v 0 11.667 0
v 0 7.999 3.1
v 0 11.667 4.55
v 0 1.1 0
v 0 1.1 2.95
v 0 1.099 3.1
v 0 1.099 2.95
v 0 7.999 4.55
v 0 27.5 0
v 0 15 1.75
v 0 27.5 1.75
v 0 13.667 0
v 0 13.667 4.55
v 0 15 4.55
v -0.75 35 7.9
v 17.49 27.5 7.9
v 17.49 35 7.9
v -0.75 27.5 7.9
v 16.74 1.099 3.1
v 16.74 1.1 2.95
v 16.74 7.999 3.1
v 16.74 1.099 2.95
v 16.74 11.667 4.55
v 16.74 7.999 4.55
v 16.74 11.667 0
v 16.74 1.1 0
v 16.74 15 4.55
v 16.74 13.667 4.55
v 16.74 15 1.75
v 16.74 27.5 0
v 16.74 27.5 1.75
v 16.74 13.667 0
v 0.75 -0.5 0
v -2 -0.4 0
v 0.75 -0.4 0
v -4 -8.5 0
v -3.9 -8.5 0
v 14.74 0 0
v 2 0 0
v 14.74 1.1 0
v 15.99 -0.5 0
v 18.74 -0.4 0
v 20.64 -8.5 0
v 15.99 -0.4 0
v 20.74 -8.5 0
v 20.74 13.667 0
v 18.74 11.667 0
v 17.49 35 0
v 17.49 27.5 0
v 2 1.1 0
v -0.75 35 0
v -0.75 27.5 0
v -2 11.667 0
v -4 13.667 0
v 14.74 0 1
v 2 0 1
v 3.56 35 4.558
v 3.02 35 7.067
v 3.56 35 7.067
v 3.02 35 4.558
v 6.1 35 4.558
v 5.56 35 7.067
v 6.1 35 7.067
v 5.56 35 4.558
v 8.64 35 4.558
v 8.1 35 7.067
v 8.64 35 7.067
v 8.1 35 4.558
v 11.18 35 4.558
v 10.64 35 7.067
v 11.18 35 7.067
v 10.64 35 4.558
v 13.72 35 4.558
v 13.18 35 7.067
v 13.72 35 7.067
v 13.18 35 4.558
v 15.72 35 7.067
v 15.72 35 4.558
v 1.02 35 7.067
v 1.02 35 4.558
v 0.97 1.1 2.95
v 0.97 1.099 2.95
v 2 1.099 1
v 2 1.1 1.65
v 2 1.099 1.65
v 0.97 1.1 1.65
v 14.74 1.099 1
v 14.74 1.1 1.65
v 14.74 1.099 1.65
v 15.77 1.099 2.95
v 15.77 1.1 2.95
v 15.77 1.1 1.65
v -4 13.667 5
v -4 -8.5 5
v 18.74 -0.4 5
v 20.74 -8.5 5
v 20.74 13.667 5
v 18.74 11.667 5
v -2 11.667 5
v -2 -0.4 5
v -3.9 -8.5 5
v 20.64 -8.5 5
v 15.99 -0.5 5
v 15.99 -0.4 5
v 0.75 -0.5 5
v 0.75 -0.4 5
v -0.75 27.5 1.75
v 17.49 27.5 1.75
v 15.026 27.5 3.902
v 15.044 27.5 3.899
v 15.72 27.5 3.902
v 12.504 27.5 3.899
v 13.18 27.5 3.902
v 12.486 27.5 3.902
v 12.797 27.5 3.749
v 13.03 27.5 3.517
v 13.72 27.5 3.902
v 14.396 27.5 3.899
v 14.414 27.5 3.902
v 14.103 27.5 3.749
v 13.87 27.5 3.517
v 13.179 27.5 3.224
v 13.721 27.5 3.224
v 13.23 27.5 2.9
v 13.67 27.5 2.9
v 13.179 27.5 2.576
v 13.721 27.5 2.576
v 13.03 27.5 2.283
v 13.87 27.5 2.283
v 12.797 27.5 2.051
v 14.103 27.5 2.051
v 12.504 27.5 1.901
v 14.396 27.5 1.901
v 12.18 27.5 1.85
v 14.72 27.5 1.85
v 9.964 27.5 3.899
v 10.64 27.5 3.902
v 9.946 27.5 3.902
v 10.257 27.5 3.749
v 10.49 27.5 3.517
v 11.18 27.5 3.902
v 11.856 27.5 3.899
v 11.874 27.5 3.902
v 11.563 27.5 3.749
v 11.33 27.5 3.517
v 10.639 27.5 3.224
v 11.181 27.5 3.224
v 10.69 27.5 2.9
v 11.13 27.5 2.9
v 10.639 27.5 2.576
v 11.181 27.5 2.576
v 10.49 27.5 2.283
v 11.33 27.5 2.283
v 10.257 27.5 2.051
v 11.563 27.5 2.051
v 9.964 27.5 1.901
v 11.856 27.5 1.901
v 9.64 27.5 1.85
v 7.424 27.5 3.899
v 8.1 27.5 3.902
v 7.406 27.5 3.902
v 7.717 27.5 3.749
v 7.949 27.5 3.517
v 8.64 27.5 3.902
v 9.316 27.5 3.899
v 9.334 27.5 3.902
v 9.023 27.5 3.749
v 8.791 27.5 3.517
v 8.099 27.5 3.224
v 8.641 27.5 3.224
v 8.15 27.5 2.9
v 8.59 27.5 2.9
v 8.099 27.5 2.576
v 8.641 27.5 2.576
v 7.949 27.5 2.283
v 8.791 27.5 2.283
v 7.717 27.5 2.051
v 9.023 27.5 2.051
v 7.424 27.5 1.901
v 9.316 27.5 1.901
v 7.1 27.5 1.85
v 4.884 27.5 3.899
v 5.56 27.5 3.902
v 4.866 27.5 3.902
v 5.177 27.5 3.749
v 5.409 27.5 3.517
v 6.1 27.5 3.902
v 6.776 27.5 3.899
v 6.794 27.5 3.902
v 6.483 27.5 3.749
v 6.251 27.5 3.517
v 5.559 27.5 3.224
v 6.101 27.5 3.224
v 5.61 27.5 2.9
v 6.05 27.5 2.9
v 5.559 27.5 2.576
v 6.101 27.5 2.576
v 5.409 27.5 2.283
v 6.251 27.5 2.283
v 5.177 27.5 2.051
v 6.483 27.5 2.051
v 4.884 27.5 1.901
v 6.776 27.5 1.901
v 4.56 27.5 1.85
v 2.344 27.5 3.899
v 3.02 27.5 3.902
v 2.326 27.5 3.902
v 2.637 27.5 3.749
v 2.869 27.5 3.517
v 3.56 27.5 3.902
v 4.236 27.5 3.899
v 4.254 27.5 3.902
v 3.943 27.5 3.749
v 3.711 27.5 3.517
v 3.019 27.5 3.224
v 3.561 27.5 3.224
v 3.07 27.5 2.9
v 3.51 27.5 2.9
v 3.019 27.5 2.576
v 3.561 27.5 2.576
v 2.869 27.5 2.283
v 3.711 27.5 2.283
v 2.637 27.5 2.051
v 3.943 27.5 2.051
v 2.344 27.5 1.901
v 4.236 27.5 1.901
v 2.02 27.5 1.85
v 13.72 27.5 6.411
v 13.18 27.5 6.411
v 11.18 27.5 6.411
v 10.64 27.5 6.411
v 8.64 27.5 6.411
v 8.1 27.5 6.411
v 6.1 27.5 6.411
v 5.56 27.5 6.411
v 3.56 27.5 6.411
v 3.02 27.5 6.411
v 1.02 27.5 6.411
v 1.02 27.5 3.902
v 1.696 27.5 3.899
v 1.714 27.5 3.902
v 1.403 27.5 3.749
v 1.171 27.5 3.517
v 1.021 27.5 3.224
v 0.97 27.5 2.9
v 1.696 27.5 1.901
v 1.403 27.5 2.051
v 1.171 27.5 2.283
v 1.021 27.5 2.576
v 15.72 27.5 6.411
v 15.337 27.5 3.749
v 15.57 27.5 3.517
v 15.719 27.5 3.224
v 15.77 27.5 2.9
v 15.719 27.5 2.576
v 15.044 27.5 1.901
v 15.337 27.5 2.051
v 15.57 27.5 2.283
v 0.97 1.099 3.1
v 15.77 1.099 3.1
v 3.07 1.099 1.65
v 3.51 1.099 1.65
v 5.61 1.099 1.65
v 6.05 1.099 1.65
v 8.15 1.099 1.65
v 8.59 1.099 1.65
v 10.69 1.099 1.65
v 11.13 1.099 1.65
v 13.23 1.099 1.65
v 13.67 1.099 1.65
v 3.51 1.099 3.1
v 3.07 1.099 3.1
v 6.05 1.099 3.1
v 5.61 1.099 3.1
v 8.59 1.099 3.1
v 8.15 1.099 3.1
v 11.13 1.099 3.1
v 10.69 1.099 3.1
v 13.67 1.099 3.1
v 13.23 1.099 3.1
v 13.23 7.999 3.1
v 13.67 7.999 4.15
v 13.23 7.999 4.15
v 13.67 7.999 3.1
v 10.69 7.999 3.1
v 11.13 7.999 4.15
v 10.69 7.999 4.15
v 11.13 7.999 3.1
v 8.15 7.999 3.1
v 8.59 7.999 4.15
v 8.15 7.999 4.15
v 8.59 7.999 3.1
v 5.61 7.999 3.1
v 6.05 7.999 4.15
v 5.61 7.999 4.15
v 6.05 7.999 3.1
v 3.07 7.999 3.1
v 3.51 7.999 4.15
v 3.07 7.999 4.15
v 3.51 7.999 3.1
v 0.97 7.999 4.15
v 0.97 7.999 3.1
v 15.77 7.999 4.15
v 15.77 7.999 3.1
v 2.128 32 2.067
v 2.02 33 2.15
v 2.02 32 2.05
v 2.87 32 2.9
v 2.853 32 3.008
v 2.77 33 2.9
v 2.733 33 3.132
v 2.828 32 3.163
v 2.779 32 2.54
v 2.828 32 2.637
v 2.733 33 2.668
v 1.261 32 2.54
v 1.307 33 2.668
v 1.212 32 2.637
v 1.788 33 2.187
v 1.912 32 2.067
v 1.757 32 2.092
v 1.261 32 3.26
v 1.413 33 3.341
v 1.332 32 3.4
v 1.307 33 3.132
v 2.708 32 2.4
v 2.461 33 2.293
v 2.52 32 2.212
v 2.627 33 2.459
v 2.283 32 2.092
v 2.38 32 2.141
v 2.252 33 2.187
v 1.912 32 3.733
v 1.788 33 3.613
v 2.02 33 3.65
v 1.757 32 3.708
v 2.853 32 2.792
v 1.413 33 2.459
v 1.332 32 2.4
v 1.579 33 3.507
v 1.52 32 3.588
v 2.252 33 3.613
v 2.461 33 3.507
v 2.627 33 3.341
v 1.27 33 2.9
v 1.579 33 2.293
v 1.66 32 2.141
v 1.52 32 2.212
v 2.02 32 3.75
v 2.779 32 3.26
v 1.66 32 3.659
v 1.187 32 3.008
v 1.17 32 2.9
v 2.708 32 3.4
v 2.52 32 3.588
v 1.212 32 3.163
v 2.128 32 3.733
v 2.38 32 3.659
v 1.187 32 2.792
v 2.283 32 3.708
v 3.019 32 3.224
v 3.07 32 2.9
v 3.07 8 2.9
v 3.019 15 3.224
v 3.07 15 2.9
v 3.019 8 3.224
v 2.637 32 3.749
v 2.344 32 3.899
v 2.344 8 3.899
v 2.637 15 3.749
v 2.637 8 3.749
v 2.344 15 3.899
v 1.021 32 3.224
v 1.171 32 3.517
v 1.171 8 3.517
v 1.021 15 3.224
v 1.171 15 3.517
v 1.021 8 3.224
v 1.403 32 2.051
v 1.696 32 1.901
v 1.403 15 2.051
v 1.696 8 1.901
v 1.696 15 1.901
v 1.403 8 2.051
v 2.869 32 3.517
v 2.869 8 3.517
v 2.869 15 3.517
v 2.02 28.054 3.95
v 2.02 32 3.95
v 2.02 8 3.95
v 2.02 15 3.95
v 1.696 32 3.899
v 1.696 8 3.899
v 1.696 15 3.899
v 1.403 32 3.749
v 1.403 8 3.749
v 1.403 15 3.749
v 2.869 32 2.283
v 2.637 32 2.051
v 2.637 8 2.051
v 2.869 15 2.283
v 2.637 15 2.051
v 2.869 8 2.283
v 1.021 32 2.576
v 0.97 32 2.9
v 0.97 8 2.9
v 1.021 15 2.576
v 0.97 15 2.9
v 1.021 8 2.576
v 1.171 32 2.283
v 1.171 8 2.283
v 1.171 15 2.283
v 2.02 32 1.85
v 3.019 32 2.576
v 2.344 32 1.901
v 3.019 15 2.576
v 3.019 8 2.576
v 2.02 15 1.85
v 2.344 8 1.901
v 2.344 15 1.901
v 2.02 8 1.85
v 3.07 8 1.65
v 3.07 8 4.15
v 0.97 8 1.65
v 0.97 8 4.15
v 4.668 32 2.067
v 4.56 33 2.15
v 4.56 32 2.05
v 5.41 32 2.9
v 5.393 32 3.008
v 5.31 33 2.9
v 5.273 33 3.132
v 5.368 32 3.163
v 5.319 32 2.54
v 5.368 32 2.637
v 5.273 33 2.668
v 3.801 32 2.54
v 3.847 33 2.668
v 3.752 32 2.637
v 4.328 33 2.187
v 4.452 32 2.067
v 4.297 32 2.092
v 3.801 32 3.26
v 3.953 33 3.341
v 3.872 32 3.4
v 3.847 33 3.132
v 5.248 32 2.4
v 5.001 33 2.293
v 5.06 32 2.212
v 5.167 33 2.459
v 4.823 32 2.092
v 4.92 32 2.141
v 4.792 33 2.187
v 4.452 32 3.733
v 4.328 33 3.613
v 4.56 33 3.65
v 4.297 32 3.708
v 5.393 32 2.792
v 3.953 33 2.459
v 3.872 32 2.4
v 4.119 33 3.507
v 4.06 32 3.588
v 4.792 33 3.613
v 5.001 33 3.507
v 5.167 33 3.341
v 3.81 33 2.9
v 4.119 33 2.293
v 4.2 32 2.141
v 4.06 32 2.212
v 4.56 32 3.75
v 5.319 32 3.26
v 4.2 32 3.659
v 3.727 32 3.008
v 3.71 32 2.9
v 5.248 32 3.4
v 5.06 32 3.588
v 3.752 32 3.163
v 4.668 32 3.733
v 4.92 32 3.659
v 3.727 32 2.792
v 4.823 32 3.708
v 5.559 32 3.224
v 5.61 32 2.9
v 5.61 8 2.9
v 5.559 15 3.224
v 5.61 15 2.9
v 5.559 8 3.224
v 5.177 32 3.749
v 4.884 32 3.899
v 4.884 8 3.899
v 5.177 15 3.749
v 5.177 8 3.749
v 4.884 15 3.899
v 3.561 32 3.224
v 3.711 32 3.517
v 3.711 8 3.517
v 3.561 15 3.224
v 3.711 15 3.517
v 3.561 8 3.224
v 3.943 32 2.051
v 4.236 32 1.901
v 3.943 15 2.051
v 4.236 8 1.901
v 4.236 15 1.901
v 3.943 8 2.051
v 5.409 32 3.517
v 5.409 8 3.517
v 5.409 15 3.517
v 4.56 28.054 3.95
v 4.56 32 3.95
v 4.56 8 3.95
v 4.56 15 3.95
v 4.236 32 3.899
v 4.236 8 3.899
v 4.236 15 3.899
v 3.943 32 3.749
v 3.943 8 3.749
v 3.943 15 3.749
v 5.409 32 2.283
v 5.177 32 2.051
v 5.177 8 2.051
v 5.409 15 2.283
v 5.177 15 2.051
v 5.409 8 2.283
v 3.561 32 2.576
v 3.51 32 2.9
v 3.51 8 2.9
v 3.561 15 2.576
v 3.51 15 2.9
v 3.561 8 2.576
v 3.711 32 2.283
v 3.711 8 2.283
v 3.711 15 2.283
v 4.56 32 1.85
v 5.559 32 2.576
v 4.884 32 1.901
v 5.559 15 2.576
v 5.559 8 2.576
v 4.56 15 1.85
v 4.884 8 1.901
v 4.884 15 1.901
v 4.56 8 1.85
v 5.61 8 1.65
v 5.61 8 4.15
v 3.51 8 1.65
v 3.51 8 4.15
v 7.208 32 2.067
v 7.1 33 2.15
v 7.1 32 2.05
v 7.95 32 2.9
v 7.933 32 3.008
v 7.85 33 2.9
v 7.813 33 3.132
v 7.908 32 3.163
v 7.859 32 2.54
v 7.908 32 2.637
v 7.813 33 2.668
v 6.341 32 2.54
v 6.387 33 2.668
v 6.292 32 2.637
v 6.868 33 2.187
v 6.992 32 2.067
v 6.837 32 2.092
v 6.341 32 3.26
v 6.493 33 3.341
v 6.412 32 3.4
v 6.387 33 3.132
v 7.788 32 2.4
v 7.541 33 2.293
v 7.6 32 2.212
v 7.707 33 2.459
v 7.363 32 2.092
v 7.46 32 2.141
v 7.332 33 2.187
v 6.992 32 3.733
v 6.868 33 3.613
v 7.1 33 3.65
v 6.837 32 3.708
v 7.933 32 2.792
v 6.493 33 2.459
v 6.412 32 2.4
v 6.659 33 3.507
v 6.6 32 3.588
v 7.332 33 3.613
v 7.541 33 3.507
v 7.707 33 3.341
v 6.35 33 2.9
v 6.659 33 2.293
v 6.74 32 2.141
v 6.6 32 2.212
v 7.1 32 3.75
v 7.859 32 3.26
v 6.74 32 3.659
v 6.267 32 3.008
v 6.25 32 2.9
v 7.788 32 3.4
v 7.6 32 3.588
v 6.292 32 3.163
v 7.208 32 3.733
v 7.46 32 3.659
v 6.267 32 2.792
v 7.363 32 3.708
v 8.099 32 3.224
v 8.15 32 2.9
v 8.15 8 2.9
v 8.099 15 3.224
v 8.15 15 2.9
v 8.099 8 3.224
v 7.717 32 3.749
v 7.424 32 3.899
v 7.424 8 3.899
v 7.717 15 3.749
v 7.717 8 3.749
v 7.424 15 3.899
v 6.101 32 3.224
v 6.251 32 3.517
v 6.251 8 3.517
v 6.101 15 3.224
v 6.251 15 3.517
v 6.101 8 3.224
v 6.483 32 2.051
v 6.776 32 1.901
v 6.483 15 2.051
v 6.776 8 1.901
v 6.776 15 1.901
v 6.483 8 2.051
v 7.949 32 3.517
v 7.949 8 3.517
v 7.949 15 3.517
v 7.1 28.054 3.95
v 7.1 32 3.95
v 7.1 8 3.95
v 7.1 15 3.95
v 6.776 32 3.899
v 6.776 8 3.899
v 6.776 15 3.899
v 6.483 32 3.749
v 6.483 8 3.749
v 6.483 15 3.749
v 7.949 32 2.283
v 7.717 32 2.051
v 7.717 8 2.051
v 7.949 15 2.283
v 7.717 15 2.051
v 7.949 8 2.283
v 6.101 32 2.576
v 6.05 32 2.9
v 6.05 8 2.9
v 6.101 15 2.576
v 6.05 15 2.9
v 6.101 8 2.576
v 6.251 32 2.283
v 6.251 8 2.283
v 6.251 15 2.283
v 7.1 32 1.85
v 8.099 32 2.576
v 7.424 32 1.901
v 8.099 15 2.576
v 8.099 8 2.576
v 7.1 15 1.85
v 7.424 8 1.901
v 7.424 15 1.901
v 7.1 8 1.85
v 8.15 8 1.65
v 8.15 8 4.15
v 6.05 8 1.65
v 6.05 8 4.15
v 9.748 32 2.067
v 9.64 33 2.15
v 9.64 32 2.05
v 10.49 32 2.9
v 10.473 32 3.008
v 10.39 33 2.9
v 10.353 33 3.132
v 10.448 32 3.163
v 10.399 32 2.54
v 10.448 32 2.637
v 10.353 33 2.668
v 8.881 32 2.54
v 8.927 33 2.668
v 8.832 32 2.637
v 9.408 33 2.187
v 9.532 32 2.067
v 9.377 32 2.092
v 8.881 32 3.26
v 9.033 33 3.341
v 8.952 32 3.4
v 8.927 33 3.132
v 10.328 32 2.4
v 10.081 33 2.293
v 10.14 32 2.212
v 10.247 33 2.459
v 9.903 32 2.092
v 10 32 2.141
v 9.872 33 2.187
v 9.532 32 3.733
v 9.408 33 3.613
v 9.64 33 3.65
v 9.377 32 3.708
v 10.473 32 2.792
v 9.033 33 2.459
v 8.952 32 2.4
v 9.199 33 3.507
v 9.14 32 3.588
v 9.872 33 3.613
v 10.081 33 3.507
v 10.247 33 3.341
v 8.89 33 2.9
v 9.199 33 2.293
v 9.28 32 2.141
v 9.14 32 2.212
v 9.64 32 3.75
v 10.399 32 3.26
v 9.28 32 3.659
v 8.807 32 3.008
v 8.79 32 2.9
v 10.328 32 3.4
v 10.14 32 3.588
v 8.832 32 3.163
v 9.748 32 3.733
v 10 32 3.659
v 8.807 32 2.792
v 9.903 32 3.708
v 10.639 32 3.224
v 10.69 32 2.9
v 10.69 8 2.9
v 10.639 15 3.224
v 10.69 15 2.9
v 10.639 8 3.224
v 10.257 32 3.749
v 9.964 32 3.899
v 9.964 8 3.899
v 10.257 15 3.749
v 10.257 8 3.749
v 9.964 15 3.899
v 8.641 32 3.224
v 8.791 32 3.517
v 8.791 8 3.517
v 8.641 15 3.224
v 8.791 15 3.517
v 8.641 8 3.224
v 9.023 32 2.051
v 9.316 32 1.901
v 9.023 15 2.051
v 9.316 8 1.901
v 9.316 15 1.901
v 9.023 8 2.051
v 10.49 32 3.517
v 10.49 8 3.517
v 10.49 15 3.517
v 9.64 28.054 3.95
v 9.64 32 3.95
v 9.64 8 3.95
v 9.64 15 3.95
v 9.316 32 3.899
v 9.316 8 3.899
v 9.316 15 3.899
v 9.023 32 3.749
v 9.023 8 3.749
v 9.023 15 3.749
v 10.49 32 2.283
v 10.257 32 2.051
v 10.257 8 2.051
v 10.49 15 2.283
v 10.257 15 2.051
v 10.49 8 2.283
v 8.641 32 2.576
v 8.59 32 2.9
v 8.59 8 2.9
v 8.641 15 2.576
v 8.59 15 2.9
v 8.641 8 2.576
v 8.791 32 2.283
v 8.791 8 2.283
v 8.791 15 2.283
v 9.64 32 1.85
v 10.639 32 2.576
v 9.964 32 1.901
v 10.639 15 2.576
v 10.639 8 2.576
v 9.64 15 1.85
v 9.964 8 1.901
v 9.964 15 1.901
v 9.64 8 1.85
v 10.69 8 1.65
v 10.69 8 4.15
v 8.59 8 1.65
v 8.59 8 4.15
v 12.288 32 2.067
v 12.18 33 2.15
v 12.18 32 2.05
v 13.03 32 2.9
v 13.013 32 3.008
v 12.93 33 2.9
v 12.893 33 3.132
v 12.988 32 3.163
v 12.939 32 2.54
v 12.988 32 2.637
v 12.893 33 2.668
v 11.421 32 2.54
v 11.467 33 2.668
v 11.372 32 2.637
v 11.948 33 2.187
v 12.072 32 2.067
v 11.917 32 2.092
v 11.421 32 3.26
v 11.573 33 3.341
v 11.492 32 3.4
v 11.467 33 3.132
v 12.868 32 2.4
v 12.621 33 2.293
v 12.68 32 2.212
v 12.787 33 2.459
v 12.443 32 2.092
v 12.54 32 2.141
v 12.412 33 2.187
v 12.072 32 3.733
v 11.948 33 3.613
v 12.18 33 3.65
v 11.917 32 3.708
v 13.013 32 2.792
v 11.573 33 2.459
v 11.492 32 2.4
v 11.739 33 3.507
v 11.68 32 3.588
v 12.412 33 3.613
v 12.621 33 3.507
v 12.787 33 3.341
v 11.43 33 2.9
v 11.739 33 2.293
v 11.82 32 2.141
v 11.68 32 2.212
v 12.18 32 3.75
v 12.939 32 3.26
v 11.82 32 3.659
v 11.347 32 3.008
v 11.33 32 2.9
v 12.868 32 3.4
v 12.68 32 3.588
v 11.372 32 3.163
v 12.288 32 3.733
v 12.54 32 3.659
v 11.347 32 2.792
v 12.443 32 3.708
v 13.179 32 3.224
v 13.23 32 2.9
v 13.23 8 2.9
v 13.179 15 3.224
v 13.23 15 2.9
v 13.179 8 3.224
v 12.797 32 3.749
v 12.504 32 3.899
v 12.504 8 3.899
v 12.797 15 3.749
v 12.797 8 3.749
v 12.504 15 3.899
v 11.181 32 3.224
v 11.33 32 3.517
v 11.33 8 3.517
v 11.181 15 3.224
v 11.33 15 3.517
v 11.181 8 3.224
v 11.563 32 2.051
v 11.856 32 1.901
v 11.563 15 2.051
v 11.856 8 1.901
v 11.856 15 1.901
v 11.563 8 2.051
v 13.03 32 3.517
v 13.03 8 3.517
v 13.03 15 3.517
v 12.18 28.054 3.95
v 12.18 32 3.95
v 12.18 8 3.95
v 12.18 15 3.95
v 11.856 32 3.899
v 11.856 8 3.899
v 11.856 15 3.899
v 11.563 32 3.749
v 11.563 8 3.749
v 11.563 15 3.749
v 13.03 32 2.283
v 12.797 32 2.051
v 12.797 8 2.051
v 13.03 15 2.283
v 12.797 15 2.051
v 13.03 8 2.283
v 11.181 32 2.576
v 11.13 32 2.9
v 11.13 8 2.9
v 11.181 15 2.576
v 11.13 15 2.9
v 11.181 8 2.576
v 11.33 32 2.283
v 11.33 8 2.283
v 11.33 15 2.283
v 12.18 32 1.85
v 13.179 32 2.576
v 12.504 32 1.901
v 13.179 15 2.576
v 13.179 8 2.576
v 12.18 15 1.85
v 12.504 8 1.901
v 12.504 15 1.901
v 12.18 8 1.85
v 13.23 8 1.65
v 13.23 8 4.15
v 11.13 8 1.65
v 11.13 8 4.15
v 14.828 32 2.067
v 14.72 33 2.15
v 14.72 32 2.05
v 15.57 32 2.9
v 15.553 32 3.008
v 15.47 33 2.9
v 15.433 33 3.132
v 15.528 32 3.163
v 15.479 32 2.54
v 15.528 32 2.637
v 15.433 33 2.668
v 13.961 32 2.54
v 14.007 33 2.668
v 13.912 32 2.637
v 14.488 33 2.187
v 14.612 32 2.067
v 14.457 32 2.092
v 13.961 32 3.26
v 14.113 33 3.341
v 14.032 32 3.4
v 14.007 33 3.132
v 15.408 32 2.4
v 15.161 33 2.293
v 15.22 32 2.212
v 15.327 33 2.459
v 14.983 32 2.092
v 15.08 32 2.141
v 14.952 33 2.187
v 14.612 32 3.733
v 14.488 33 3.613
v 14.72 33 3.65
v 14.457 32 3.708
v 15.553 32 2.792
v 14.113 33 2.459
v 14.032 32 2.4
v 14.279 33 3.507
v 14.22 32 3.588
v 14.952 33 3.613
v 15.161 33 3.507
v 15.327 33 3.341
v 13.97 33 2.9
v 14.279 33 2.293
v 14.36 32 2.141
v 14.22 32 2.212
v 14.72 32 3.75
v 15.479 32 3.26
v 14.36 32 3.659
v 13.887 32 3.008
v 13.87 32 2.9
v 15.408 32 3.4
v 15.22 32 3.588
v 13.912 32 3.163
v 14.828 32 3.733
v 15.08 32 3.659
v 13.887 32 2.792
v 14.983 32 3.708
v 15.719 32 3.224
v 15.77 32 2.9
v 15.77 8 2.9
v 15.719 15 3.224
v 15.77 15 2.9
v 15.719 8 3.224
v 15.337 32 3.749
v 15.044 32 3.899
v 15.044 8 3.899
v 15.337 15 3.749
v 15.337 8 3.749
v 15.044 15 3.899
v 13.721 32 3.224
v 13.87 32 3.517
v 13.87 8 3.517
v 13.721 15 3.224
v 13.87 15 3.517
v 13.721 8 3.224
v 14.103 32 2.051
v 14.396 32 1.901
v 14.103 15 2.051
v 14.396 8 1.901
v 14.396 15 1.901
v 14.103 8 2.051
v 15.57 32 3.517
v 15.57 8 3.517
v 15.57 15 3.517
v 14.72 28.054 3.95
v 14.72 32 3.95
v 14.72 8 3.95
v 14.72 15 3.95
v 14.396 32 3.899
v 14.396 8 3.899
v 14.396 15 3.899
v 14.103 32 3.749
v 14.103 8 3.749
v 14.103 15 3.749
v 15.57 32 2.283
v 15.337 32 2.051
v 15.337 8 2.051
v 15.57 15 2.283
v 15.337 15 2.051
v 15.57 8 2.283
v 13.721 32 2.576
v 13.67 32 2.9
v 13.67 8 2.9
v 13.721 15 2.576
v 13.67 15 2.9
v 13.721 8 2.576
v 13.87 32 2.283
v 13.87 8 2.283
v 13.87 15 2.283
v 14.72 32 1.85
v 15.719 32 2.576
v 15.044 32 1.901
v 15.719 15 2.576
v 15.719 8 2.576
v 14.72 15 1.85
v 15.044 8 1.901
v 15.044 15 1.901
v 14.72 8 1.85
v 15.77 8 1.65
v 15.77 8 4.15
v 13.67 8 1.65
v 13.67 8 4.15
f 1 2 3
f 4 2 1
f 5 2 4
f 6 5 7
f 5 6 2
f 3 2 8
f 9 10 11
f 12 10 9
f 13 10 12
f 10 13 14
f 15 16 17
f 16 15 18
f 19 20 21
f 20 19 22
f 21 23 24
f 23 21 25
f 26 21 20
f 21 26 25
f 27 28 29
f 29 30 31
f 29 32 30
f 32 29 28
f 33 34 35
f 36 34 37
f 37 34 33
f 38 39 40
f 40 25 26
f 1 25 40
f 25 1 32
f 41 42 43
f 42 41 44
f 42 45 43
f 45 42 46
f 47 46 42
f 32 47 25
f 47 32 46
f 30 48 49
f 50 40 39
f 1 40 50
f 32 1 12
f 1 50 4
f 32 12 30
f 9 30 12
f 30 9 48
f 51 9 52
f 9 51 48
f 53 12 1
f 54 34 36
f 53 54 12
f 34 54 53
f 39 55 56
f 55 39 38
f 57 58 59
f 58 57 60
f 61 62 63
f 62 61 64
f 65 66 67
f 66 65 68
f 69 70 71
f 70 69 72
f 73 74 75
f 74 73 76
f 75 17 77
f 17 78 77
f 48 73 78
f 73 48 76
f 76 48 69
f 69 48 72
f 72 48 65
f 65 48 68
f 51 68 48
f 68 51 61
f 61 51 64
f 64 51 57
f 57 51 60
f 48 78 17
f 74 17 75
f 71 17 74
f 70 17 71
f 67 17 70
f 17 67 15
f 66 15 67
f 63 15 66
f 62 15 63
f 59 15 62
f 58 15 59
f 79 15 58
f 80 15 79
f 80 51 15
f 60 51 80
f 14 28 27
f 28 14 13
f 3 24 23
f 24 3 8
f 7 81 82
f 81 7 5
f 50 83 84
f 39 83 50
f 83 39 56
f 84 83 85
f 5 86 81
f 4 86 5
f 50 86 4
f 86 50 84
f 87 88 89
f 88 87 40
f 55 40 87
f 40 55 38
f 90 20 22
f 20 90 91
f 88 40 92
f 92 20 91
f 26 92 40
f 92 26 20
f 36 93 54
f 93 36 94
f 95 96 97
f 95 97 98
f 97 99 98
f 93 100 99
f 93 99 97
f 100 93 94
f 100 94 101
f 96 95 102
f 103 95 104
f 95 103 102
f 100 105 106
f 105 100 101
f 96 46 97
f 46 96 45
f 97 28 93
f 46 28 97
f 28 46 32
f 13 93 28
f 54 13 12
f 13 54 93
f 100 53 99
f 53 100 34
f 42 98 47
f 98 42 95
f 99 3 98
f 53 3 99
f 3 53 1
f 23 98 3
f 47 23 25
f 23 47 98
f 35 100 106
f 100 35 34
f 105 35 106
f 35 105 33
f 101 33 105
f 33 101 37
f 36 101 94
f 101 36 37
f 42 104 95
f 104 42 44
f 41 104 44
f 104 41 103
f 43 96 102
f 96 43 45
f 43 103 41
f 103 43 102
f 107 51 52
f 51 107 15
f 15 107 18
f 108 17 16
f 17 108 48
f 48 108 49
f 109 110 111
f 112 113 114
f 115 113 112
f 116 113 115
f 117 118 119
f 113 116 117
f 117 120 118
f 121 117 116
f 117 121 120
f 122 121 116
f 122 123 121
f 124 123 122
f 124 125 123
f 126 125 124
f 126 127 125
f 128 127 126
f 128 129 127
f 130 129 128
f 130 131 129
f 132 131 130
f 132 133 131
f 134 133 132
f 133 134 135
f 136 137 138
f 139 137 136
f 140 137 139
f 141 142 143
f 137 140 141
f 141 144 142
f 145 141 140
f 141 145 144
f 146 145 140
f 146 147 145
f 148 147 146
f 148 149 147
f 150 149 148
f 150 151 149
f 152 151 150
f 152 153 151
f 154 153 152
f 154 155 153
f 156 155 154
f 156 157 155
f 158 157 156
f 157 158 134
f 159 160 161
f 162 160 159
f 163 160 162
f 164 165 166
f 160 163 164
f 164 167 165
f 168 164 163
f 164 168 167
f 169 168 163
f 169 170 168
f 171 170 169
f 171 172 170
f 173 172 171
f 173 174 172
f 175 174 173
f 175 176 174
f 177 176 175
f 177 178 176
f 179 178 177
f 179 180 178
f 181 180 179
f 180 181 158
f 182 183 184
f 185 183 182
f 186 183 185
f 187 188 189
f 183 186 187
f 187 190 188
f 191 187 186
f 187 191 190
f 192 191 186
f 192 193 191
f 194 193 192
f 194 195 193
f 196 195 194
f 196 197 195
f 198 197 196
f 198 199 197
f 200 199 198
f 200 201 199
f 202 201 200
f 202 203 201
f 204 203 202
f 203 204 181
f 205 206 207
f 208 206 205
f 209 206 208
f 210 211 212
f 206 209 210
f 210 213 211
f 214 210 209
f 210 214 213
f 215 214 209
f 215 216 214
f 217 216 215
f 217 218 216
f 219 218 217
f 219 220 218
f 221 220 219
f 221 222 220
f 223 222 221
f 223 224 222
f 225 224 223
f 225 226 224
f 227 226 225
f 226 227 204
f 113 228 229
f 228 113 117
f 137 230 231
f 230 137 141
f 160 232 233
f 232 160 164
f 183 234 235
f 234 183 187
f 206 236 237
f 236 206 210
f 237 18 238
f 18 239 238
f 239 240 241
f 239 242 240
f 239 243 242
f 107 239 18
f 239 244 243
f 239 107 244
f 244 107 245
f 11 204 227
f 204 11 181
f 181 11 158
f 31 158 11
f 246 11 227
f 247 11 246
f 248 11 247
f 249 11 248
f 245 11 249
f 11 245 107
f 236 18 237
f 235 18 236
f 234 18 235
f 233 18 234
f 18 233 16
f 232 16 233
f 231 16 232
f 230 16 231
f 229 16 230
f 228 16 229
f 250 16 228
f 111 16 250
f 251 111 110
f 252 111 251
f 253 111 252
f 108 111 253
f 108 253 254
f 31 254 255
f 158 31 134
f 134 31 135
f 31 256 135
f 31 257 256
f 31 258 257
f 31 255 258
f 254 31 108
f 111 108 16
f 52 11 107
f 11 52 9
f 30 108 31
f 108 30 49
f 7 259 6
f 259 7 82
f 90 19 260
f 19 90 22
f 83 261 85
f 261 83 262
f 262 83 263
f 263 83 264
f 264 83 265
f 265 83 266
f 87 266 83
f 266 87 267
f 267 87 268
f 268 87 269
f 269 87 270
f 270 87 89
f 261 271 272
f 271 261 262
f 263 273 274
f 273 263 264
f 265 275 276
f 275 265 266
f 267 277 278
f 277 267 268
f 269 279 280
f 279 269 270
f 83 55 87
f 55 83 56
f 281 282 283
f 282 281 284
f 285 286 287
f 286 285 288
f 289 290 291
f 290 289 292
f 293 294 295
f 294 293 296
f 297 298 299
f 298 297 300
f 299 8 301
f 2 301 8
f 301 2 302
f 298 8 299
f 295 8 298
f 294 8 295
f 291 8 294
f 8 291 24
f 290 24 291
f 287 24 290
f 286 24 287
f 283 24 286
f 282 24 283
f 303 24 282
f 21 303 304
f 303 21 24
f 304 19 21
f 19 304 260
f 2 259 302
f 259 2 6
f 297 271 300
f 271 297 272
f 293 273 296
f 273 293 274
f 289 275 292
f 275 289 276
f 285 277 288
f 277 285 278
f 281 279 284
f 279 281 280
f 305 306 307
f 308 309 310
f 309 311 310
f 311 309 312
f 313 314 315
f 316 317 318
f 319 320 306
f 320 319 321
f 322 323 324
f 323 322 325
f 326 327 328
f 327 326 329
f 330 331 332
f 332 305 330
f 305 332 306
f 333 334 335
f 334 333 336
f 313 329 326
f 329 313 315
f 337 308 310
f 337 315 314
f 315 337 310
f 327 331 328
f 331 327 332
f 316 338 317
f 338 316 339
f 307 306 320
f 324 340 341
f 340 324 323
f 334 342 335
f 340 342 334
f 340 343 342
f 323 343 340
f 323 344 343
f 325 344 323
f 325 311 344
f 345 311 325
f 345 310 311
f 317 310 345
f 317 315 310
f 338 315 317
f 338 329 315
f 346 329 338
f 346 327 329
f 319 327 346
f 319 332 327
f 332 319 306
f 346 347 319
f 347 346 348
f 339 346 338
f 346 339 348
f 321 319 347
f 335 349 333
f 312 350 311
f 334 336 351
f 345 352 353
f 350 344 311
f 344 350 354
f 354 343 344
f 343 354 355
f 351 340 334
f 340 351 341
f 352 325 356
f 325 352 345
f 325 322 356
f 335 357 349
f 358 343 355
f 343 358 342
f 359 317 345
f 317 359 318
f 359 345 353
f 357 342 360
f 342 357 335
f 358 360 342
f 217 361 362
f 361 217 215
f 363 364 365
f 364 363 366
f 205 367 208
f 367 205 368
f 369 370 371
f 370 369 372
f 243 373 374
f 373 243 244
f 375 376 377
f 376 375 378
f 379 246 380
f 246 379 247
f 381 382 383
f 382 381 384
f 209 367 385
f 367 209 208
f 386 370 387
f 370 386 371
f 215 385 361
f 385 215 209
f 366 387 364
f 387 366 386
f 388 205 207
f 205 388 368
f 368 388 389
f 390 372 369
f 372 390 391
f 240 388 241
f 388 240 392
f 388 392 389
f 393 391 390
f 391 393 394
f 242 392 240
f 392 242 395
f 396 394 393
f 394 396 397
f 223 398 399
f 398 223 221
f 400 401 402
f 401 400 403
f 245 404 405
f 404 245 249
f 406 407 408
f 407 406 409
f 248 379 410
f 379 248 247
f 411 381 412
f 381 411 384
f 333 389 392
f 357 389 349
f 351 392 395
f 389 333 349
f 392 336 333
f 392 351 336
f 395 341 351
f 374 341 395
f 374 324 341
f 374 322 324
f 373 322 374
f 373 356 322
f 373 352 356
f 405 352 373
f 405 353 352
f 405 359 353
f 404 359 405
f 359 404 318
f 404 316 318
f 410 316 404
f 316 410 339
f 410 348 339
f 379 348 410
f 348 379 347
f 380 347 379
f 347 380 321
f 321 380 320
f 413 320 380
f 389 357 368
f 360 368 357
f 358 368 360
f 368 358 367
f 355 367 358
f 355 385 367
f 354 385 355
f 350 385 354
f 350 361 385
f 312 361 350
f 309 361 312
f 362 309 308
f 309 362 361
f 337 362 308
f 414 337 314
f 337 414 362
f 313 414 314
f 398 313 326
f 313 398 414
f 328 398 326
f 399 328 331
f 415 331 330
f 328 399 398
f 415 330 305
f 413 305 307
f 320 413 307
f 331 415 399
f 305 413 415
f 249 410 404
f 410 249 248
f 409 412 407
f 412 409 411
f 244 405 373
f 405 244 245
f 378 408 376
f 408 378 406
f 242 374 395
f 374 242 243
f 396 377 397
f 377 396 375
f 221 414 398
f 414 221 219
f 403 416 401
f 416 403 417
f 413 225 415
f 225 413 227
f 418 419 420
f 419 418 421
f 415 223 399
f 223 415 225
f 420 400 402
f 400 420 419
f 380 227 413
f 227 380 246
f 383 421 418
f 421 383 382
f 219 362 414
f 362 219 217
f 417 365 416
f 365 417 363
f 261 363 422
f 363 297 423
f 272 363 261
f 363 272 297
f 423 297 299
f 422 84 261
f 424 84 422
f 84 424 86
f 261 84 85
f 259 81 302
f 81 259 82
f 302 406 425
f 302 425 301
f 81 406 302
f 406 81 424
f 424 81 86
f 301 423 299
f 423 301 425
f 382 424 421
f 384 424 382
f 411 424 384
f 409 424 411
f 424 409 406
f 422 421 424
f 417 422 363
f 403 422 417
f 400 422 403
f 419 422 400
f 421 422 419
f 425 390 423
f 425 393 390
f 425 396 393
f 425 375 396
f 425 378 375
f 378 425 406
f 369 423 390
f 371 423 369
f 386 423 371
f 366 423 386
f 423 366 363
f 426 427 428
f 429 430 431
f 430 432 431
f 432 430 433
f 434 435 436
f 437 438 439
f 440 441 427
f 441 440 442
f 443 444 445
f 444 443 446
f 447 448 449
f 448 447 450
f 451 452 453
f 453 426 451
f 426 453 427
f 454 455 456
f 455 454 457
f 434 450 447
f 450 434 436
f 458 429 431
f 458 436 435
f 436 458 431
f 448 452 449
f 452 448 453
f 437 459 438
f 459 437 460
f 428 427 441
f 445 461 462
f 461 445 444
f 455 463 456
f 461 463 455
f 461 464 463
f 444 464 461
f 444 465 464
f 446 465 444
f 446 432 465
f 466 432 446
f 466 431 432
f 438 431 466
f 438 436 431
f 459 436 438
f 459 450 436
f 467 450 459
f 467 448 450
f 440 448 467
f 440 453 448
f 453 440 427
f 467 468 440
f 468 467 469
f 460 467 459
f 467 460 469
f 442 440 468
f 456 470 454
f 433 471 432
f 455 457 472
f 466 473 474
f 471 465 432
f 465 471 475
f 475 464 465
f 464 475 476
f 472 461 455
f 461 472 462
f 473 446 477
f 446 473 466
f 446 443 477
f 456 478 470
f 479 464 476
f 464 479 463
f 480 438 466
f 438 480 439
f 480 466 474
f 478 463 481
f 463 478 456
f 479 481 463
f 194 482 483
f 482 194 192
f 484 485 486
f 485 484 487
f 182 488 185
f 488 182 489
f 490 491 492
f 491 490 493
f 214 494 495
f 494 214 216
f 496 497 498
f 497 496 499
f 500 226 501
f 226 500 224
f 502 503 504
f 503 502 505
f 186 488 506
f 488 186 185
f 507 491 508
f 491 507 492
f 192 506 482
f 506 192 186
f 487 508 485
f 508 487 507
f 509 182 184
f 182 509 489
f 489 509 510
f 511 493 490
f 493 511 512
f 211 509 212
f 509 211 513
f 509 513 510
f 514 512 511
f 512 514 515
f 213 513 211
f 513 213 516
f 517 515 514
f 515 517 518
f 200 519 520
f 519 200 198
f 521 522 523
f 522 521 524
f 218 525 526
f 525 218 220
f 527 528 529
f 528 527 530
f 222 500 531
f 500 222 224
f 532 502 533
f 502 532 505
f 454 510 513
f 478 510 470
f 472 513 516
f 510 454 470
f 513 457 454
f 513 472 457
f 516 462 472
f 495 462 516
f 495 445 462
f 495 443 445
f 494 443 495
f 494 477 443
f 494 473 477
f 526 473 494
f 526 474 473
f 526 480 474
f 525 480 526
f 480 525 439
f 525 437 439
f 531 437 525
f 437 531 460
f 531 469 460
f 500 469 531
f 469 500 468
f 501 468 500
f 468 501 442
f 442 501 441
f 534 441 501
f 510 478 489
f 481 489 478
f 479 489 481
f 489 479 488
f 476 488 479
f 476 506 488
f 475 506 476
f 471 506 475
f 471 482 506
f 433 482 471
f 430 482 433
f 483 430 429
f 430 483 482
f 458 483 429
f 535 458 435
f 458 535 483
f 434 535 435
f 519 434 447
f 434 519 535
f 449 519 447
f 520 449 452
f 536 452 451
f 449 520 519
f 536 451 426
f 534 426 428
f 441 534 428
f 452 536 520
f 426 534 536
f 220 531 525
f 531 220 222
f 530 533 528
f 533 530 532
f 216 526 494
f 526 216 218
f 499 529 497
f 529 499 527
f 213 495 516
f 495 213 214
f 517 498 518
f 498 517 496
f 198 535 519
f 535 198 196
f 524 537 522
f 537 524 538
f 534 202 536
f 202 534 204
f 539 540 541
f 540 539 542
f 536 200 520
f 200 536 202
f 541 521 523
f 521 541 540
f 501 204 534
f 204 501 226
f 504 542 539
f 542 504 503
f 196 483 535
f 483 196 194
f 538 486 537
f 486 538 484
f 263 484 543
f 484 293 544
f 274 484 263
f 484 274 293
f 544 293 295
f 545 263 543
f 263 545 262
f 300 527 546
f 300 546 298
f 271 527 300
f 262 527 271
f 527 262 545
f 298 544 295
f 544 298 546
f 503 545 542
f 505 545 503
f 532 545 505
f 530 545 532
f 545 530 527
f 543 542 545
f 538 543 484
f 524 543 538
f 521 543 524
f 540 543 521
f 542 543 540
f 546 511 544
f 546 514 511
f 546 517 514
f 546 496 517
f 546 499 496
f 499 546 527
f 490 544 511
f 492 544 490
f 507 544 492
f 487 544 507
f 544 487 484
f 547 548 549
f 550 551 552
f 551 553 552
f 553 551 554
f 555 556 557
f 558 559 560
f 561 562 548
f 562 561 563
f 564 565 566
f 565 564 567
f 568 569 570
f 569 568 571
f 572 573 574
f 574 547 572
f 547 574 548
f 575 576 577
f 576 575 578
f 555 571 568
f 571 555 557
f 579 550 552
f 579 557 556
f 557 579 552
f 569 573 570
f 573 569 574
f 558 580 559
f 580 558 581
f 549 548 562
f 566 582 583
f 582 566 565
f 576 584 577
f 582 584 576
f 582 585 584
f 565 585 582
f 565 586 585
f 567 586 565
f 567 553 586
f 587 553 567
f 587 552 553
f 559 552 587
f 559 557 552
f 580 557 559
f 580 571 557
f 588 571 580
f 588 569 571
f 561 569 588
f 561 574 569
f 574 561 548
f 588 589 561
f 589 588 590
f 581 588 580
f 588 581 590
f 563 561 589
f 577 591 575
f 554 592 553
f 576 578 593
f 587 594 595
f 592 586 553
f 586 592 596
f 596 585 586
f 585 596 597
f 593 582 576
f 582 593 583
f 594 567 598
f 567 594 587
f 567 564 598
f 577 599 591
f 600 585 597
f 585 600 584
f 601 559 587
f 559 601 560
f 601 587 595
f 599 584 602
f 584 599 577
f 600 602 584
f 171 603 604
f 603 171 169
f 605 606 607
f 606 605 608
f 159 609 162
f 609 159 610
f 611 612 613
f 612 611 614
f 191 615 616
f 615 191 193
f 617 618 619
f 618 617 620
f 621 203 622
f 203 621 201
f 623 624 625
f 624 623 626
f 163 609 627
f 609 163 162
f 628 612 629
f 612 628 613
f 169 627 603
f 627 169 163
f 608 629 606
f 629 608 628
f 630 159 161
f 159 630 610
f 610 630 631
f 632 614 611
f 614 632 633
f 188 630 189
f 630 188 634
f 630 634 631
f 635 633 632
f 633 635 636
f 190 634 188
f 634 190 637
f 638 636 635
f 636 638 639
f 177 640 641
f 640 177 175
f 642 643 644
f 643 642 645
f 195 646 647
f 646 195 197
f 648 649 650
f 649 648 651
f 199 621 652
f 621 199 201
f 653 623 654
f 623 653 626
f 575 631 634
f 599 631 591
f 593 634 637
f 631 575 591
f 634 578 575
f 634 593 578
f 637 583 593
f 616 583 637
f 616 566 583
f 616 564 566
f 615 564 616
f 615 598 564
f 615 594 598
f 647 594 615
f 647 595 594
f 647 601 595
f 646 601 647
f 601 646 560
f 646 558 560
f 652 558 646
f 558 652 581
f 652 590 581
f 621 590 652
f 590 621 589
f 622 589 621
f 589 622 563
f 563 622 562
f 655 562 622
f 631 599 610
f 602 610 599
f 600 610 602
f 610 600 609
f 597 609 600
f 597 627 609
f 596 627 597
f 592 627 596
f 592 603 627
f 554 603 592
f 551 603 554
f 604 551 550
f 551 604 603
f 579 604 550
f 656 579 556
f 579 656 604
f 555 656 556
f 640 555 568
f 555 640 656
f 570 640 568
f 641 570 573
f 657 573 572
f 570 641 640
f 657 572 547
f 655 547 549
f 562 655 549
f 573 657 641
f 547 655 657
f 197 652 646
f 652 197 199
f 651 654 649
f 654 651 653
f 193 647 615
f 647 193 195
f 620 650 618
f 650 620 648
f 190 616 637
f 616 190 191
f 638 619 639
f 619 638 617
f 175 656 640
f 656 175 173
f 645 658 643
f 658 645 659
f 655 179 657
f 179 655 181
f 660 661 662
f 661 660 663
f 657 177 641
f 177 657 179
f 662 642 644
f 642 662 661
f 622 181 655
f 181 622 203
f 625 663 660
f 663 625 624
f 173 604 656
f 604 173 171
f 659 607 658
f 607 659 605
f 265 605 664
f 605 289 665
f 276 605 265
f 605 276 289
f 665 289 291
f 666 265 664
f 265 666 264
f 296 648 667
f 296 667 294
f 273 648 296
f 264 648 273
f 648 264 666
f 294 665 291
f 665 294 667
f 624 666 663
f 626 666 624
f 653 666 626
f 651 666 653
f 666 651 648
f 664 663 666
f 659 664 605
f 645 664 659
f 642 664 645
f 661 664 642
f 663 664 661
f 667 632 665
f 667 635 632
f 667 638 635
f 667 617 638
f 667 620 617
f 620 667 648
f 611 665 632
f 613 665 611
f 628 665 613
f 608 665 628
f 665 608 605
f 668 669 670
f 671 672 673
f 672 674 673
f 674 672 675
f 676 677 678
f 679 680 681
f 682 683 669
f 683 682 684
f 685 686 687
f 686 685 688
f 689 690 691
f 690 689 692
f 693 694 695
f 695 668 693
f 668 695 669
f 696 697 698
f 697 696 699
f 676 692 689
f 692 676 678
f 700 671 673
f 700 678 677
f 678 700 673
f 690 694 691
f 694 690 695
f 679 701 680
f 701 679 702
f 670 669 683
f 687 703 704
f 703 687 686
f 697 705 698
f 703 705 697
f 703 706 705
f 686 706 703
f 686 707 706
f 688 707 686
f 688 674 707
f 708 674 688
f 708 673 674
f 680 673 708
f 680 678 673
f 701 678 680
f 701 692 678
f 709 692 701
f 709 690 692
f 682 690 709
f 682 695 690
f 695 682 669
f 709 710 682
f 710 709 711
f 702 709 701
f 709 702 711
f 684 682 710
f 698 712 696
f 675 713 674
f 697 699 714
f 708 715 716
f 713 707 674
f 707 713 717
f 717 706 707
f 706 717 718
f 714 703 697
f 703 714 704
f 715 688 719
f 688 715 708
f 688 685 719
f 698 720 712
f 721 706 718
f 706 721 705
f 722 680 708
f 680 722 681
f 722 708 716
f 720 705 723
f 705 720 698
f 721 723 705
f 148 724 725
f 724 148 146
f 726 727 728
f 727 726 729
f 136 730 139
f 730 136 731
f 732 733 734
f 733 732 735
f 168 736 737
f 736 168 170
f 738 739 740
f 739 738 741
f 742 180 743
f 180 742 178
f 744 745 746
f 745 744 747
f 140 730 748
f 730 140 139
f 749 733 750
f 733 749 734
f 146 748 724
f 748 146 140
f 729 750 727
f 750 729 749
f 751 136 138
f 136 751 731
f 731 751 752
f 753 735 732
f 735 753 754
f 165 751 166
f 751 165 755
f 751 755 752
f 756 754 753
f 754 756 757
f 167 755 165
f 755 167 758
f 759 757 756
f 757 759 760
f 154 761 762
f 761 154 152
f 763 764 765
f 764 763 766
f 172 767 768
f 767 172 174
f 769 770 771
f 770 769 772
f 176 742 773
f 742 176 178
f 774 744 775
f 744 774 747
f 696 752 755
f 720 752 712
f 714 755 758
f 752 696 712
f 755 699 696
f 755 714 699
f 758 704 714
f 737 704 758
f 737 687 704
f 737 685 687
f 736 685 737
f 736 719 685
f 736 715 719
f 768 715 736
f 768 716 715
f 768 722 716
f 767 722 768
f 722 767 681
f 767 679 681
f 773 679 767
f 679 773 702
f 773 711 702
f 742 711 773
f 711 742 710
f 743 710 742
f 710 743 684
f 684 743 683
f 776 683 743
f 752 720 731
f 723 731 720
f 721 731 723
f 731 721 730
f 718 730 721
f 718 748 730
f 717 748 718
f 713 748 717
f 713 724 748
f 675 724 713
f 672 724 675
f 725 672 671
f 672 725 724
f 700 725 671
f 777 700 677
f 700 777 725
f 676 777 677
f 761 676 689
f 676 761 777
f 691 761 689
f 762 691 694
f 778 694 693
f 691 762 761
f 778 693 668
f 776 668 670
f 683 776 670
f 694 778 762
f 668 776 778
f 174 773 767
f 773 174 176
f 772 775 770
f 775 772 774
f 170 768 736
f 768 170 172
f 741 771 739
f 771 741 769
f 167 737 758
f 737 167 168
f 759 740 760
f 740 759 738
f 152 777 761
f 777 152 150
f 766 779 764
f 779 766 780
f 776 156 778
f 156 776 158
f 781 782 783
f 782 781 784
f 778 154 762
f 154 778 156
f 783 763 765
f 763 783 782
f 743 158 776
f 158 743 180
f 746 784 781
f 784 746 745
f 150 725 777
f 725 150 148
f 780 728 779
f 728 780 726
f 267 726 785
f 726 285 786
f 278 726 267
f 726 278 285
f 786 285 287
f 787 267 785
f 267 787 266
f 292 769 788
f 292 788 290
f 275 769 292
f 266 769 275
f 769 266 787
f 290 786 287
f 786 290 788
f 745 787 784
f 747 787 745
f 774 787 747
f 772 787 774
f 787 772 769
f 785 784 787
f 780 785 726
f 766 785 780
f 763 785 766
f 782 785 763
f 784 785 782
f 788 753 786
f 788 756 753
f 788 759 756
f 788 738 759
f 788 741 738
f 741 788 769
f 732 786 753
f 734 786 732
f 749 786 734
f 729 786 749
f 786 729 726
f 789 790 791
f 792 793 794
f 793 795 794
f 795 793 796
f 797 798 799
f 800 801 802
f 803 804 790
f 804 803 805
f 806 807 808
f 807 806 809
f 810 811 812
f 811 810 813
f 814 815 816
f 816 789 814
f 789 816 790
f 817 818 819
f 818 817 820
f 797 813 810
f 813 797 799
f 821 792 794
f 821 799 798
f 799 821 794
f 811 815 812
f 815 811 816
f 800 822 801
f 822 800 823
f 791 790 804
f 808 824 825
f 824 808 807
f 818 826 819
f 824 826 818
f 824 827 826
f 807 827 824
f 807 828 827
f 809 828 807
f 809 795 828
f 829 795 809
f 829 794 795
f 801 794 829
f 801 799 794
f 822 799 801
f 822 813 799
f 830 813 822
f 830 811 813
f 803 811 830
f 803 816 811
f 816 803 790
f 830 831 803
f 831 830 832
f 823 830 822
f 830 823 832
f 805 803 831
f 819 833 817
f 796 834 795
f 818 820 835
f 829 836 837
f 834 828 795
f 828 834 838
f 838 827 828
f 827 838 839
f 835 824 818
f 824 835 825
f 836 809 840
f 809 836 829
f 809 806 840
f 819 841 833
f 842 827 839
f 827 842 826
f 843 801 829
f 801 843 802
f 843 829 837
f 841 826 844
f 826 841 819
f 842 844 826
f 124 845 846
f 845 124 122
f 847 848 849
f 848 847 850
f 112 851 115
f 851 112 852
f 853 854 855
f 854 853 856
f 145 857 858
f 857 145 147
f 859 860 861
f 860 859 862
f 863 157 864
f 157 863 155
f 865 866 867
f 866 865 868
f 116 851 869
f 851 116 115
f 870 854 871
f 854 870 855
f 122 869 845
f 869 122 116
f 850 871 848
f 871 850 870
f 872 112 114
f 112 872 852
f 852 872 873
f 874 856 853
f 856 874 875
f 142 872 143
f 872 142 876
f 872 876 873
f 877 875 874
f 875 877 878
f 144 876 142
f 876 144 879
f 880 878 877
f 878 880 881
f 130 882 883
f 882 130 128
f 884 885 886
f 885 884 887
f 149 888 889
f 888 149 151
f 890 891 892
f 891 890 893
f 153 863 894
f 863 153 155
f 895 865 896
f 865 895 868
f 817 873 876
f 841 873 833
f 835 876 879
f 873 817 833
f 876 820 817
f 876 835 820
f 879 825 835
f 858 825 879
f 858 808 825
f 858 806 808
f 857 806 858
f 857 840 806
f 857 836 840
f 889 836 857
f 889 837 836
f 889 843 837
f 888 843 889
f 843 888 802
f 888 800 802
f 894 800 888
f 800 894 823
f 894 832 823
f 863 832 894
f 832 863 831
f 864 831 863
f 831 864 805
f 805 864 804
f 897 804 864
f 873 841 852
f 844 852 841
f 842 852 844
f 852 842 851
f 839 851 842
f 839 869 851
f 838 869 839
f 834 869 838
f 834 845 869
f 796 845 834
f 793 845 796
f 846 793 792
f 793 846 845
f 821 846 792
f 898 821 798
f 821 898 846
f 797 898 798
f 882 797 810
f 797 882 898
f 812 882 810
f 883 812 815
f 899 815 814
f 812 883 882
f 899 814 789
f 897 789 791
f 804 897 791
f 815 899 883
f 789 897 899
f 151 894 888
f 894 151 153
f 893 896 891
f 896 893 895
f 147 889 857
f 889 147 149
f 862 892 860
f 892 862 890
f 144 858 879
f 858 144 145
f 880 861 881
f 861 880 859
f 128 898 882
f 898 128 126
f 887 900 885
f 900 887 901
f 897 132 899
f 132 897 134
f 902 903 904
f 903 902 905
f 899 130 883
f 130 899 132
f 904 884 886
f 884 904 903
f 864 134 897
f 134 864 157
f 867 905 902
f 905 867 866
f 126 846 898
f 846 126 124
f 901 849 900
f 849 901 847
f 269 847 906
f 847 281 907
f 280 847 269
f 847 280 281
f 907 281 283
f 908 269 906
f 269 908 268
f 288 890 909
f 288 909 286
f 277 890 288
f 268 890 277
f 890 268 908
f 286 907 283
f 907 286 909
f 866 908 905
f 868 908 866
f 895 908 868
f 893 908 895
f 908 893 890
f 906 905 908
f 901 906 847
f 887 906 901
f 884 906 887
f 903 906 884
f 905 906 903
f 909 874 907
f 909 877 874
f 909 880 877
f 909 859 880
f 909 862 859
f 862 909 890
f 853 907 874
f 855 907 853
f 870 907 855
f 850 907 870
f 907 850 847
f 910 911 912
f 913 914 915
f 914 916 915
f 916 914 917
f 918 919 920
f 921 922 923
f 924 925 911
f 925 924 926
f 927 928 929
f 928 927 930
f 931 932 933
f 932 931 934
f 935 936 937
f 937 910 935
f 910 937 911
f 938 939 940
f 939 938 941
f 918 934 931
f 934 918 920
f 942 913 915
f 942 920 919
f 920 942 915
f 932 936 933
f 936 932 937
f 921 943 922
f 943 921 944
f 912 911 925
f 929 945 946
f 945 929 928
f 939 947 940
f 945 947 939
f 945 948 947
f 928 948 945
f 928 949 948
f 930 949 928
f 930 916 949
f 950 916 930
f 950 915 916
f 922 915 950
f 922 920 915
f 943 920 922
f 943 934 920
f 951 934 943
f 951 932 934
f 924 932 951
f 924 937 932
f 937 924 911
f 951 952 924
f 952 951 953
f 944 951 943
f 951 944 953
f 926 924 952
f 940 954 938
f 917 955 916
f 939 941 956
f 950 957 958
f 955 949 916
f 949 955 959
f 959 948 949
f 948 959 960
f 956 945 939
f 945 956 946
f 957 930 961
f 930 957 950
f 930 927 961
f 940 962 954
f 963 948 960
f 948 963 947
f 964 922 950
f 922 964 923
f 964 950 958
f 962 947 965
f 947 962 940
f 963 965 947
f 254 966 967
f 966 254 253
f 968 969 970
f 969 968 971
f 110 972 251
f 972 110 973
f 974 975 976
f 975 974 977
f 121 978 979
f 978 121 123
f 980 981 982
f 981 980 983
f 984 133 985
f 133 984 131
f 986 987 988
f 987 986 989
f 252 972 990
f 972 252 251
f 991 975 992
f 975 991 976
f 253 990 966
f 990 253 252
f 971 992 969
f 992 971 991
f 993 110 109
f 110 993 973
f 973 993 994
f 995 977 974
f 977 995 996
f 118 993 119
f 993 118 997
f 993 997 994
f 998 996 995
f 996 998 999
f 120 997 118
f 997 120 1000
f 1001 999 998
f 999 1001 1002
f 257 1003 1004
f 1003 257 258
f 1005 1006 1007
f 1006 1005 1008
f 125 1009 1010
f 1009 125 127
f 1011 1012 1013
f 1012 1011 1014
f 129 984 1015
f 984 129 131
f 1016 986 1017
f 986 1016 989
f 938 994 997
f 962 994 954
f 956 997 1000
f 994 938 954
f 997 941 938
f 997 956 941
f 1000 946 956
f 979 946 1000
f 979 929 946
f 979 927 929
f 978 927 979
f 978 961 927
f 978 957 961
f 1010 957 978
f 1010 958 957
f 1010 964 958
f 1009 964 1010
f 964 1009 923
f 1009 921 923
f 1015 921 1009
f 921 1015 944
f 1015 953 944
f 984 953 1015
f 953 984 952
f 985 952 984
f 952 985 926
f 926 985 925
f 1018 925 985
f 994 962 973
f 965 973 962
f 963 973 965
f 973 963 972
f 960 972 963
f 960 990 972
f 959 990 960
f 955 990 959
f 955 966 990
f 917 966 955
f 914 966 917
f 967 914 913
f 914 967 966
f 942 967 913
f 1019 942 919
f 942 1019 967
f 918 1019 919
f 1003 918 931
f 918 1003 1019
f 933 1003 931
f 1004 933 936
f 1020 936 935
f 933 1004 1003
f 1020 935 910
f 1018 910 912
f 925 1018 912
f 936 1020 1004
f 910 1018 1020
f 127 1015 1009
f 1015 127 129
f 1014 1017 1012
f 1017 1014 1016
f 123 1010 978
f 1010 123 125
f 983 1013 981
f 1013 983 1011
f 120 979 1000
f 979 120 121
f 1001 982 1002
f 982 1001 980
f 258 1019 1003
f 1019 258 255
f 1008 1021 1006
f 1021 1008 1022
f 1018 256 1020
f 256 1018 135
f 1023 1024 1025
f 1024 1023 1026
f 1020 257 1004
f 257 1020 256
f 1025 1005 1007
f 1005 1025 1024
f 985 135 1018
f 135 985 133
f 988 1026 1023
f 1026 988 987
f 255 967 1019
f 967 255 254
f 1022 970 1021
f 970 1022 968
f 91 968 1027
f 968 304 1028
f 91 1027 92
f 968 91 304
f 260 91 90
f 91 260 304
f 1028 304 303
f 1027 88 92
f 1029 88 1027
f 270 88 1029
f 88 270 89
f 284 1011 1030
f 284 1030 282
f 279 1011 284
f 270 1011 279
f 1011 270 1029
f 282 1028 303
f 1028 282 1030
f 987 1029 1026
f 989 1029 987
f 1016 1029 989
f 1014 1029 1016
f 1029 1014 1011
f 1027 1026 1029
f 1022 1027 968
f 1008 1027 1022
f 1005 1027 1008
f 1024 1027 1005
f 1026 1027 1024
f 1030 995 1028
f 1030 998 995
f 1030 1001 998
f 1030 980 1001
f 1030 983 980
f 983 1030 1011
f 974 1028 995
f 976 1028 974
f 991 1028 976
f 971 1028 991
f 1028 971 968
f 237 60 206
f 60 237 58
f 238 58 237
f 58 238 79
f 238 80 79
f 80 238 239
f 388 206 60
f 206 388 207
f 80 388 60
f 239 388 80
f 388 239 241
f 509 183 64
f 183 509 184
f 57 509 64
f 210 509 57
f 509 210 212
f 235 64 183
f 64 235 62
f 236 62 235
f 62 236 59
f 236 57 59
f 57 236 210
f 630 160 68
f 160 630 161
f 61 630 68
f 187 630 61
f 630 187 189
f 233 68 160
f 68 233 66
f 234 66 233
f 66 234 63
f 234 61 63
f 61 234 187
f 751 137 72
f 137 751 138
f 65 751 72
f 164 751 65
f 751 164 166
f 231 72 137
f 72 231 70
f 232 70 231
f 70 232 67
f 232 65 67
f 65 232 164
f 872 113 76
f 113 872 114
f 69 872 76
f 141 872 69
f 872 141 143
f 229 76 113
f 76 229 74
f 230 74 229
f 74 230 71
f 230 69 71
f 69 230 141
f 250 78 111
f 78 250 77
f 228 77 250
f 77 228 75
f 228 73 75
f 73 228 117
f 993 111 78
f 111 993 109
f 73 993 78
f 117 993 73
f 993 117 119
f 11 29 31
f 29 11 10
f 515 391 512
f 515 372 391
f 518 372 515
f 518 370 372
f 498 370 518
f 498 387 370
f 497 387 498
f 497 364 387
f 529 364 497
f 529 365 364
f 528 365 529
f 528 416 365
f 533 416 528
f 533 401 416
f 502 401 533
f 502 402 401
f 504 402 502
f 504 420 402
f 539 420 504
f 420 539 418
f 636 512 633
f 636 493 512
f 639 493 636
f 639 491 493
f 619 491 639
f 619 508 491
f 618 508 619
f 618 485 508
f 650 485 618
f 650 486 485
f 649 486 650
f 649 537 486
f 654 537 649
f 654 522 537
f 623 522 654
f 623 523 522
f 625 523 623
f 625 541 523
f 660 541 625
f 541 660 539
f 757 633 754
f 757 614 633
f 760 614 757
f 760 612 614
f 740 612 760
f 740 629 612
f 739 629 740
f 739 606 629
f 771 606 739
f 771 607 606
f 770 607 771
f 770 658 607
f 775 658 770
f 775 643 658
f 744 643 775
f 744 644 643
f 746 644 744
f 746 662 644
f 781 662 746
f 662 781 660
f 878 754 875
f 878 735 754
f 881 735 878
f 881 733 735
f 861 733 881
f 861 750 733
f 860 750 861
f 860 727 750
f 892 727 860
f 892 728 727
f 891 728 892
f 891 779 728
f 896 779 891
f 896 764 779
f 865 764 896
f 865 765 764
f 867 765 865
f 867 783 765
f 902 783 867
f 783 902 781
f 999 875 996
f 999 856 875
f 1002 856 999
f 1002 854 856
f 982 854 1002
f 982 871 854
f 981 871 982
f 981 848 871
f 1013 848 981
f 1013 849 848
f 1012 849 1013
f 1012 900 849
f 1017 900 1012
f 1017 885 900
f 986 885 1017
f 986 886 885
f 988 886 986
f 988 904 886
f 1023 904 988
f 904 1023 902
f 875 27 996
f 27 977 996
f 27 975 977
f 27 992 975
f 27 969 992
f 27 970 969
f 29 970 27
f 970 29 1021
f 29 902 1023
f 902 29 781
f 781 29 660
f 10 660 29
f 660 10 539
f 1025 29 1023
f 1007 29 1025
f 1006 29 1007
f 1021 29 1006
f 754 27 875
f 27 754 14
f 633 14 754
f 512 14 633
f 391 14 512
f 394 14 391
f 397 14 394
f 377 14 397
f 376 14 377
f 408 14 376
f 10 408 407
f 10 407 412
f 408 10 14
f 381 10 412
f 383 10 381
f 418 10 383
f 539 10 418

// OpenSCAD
$fn=20;
/*
  Edge Header Programmer Clip Via Probes (e.g. OpenLog Clone)
  Author: Brian Khuu 2019
  
  This is originally designed for connecting to OpenLog Clones
  
  I used P100-E2 probes for this
  
  Note: The purple openlog clone Programmer Port essentally has [GND, RST, SCK, M0, M1, Vin]

*/

// Designed For Printer Nozzle
printer_nozzle=0.4;

// Base Thickness
base_thickness = 1;

/* probe pin spec */
ppext = 8; // Probe extention length
ppbody = 25; // Body of the probe
ppdia = 1.5; // probe pin diameter

ppdiatol = 0.6; // tolerance for fitting
ppinset = 0;

ppdiaoutset = ppext-ppinset; // How far to space out to allow for side fits
echo(ppdiaoutset);

/* Castellated Module Pin Spacing and count */

// Pin Count
ppc = 6;

// Pin Spacing
pps = 2.54;

// PCB Thickness
pcb_thickness = 1.1; // 1mm Open Log Clone

// PCB Probe Offset
pcb_probe_offset = 1.3;

/* Clip */
clip_tab = 5; // Clip tab to more easily open the clip

/* pcb */
pcb_h = 2; // pcb thickness

/* calc */
boxx = ppc * pps + ppdia;
boxy = 2 + ppbody + ppdiaoutset;
boxh = base_thickness+pcb_probe_offset+ppdiatol+5;

module probe_pin_req()
{
  inset=0;
  translate([0,0,-ppbody])
  union()
  {
    translate([0,0,0])
      cylinder(r1=(ppdia)/2,r2=(ppdia+ppdiatol)/2, h=3);
    translate([0,0,1])
      cylinder(r=(ppdia+ppdiatol)/2, h=ppbody+ppext+1);
    %color("gold") cylinder(r=ppdia/2, h=ppbody);
    %color("silver") translate([0,0,ppbody])
      cylinder(r=ppdia/2, r2=0, h=ppext);
  }
}

module openlog_clone_programmer_jig_clip()
{
  grip_gap=2;
  grip_thickness=printer_nozzle*5;
  grip_height=5;
  difference() 
  {
    translate([-grip_gap-grip_thickness,-1,0])
      cube([boxx+grip_gap*2+grip_thickness*2,boxy/3+3,grip_height]);
    translate([-grip_gap,-2,-1])
      cube([boxx+grip_gap*2,boxy/3+2,grip_height+2]);
  }
  translate([-(grip_thickness*2+grip_gap*2)/2,-0.5,0])
    hull()
    {
      translate([0,0,0])
        cube([(grip_thickness+grip_gap+ppdia/2),0.1,grip_height]);
      translate([0,-8,0])
        cube([0.1,0.1,grip_height]);
    }
  translate([(grip_thickness*2+grip_gap*2)/2+boxx,-0.5,0])
    hull()
    {
      translate([-(grip_thickness+grip_gap+ppdia/2),0,0])
        cube([(grip_thickness+grip_gap+ppdia/2),0.1,grip_height]);
      translate([-0.1,-8,0])
        cube([0.1,0.1,grip_height]);
    }
}

module openlog_clone_programmer_jig()
{
  difference()
  {  
    /* Bulk */
    union()
    {
      difference()
      {
        cube([boxx,boxy,boxh]);
        translate([-5, 0, base_thickness+pcb_probe_offset+ppdia*1.5]) 
          cube([ppc * pps+10,ppbody, 5]);
        translate([0,0,-1])
          cube([4,pcb_thickness*2,boxh],center=true);
        translate([boxx,0,-1])
          cube([4,pcb_thickness*2,boxh],center=true);
      }
      translate([-(ppdia)/2, ppdiaoutset+7+ppbody/2, 0]) 
        cube([boxx+(ppdia),boxy-(ppdiaoutset+7+ppbody/2), boxh]);
      openlog_clone_programmer_jig_clip();
    }

    /* Probe Access Cutout */
    translate([-5, ppdiaoutset+7, base_thickness+ppdia/2]) 
      cube([ppc * pps+10,ppbody/2, 10]);
      
    /* Module Cutout */
    translate([0, -0.001, 0]) 
      union()
      {     
        translate([0, 0,base_thickness]) 
          cube([boxx,pcb_thickness, boxh]);   
        translate([0, 0, base_thickness+ppdia+ppdiatol]) 
          cube([boxx,ppdiaoutset, boxh]);
      }
      
    /* Probe */
    for ( xi = [0 : 1 : ppc-1] )
    {
      translate([ppdia/2+pps/2+pps*xi, 0, base_thickness])
      union()
      {
        translate([0, ppdiaoutset, pcb_probe_offset+ppdiatol])
          rotate([90,0,0])
          probe_pin_req();
        
        translate([0, ppdiaoutset, pcb_probe_offset+ppdiatol])
          rotate([180,0,0])
            translate([0, (ppdiaoutset)/2, 0])
              cube([ppdia+ppdiatol,(ppdiaoutset),ppdia+1], center=true);
      }
    }
    
    /* Wire Guide (To solder onto the probe) */
    for ( xii = [0 : 1 : ppc-1] )
    {
      translate([ppdia/2+pps/2+pps*xii, boxy+1, base_thickness+ppdia+1.5+pcb_probe_offset+ppdiatol])
        rotate([95,0,0])
          cube([2,2.5,20],center=true);
    }
  }
}

openlog_clone_programmer_jig();
